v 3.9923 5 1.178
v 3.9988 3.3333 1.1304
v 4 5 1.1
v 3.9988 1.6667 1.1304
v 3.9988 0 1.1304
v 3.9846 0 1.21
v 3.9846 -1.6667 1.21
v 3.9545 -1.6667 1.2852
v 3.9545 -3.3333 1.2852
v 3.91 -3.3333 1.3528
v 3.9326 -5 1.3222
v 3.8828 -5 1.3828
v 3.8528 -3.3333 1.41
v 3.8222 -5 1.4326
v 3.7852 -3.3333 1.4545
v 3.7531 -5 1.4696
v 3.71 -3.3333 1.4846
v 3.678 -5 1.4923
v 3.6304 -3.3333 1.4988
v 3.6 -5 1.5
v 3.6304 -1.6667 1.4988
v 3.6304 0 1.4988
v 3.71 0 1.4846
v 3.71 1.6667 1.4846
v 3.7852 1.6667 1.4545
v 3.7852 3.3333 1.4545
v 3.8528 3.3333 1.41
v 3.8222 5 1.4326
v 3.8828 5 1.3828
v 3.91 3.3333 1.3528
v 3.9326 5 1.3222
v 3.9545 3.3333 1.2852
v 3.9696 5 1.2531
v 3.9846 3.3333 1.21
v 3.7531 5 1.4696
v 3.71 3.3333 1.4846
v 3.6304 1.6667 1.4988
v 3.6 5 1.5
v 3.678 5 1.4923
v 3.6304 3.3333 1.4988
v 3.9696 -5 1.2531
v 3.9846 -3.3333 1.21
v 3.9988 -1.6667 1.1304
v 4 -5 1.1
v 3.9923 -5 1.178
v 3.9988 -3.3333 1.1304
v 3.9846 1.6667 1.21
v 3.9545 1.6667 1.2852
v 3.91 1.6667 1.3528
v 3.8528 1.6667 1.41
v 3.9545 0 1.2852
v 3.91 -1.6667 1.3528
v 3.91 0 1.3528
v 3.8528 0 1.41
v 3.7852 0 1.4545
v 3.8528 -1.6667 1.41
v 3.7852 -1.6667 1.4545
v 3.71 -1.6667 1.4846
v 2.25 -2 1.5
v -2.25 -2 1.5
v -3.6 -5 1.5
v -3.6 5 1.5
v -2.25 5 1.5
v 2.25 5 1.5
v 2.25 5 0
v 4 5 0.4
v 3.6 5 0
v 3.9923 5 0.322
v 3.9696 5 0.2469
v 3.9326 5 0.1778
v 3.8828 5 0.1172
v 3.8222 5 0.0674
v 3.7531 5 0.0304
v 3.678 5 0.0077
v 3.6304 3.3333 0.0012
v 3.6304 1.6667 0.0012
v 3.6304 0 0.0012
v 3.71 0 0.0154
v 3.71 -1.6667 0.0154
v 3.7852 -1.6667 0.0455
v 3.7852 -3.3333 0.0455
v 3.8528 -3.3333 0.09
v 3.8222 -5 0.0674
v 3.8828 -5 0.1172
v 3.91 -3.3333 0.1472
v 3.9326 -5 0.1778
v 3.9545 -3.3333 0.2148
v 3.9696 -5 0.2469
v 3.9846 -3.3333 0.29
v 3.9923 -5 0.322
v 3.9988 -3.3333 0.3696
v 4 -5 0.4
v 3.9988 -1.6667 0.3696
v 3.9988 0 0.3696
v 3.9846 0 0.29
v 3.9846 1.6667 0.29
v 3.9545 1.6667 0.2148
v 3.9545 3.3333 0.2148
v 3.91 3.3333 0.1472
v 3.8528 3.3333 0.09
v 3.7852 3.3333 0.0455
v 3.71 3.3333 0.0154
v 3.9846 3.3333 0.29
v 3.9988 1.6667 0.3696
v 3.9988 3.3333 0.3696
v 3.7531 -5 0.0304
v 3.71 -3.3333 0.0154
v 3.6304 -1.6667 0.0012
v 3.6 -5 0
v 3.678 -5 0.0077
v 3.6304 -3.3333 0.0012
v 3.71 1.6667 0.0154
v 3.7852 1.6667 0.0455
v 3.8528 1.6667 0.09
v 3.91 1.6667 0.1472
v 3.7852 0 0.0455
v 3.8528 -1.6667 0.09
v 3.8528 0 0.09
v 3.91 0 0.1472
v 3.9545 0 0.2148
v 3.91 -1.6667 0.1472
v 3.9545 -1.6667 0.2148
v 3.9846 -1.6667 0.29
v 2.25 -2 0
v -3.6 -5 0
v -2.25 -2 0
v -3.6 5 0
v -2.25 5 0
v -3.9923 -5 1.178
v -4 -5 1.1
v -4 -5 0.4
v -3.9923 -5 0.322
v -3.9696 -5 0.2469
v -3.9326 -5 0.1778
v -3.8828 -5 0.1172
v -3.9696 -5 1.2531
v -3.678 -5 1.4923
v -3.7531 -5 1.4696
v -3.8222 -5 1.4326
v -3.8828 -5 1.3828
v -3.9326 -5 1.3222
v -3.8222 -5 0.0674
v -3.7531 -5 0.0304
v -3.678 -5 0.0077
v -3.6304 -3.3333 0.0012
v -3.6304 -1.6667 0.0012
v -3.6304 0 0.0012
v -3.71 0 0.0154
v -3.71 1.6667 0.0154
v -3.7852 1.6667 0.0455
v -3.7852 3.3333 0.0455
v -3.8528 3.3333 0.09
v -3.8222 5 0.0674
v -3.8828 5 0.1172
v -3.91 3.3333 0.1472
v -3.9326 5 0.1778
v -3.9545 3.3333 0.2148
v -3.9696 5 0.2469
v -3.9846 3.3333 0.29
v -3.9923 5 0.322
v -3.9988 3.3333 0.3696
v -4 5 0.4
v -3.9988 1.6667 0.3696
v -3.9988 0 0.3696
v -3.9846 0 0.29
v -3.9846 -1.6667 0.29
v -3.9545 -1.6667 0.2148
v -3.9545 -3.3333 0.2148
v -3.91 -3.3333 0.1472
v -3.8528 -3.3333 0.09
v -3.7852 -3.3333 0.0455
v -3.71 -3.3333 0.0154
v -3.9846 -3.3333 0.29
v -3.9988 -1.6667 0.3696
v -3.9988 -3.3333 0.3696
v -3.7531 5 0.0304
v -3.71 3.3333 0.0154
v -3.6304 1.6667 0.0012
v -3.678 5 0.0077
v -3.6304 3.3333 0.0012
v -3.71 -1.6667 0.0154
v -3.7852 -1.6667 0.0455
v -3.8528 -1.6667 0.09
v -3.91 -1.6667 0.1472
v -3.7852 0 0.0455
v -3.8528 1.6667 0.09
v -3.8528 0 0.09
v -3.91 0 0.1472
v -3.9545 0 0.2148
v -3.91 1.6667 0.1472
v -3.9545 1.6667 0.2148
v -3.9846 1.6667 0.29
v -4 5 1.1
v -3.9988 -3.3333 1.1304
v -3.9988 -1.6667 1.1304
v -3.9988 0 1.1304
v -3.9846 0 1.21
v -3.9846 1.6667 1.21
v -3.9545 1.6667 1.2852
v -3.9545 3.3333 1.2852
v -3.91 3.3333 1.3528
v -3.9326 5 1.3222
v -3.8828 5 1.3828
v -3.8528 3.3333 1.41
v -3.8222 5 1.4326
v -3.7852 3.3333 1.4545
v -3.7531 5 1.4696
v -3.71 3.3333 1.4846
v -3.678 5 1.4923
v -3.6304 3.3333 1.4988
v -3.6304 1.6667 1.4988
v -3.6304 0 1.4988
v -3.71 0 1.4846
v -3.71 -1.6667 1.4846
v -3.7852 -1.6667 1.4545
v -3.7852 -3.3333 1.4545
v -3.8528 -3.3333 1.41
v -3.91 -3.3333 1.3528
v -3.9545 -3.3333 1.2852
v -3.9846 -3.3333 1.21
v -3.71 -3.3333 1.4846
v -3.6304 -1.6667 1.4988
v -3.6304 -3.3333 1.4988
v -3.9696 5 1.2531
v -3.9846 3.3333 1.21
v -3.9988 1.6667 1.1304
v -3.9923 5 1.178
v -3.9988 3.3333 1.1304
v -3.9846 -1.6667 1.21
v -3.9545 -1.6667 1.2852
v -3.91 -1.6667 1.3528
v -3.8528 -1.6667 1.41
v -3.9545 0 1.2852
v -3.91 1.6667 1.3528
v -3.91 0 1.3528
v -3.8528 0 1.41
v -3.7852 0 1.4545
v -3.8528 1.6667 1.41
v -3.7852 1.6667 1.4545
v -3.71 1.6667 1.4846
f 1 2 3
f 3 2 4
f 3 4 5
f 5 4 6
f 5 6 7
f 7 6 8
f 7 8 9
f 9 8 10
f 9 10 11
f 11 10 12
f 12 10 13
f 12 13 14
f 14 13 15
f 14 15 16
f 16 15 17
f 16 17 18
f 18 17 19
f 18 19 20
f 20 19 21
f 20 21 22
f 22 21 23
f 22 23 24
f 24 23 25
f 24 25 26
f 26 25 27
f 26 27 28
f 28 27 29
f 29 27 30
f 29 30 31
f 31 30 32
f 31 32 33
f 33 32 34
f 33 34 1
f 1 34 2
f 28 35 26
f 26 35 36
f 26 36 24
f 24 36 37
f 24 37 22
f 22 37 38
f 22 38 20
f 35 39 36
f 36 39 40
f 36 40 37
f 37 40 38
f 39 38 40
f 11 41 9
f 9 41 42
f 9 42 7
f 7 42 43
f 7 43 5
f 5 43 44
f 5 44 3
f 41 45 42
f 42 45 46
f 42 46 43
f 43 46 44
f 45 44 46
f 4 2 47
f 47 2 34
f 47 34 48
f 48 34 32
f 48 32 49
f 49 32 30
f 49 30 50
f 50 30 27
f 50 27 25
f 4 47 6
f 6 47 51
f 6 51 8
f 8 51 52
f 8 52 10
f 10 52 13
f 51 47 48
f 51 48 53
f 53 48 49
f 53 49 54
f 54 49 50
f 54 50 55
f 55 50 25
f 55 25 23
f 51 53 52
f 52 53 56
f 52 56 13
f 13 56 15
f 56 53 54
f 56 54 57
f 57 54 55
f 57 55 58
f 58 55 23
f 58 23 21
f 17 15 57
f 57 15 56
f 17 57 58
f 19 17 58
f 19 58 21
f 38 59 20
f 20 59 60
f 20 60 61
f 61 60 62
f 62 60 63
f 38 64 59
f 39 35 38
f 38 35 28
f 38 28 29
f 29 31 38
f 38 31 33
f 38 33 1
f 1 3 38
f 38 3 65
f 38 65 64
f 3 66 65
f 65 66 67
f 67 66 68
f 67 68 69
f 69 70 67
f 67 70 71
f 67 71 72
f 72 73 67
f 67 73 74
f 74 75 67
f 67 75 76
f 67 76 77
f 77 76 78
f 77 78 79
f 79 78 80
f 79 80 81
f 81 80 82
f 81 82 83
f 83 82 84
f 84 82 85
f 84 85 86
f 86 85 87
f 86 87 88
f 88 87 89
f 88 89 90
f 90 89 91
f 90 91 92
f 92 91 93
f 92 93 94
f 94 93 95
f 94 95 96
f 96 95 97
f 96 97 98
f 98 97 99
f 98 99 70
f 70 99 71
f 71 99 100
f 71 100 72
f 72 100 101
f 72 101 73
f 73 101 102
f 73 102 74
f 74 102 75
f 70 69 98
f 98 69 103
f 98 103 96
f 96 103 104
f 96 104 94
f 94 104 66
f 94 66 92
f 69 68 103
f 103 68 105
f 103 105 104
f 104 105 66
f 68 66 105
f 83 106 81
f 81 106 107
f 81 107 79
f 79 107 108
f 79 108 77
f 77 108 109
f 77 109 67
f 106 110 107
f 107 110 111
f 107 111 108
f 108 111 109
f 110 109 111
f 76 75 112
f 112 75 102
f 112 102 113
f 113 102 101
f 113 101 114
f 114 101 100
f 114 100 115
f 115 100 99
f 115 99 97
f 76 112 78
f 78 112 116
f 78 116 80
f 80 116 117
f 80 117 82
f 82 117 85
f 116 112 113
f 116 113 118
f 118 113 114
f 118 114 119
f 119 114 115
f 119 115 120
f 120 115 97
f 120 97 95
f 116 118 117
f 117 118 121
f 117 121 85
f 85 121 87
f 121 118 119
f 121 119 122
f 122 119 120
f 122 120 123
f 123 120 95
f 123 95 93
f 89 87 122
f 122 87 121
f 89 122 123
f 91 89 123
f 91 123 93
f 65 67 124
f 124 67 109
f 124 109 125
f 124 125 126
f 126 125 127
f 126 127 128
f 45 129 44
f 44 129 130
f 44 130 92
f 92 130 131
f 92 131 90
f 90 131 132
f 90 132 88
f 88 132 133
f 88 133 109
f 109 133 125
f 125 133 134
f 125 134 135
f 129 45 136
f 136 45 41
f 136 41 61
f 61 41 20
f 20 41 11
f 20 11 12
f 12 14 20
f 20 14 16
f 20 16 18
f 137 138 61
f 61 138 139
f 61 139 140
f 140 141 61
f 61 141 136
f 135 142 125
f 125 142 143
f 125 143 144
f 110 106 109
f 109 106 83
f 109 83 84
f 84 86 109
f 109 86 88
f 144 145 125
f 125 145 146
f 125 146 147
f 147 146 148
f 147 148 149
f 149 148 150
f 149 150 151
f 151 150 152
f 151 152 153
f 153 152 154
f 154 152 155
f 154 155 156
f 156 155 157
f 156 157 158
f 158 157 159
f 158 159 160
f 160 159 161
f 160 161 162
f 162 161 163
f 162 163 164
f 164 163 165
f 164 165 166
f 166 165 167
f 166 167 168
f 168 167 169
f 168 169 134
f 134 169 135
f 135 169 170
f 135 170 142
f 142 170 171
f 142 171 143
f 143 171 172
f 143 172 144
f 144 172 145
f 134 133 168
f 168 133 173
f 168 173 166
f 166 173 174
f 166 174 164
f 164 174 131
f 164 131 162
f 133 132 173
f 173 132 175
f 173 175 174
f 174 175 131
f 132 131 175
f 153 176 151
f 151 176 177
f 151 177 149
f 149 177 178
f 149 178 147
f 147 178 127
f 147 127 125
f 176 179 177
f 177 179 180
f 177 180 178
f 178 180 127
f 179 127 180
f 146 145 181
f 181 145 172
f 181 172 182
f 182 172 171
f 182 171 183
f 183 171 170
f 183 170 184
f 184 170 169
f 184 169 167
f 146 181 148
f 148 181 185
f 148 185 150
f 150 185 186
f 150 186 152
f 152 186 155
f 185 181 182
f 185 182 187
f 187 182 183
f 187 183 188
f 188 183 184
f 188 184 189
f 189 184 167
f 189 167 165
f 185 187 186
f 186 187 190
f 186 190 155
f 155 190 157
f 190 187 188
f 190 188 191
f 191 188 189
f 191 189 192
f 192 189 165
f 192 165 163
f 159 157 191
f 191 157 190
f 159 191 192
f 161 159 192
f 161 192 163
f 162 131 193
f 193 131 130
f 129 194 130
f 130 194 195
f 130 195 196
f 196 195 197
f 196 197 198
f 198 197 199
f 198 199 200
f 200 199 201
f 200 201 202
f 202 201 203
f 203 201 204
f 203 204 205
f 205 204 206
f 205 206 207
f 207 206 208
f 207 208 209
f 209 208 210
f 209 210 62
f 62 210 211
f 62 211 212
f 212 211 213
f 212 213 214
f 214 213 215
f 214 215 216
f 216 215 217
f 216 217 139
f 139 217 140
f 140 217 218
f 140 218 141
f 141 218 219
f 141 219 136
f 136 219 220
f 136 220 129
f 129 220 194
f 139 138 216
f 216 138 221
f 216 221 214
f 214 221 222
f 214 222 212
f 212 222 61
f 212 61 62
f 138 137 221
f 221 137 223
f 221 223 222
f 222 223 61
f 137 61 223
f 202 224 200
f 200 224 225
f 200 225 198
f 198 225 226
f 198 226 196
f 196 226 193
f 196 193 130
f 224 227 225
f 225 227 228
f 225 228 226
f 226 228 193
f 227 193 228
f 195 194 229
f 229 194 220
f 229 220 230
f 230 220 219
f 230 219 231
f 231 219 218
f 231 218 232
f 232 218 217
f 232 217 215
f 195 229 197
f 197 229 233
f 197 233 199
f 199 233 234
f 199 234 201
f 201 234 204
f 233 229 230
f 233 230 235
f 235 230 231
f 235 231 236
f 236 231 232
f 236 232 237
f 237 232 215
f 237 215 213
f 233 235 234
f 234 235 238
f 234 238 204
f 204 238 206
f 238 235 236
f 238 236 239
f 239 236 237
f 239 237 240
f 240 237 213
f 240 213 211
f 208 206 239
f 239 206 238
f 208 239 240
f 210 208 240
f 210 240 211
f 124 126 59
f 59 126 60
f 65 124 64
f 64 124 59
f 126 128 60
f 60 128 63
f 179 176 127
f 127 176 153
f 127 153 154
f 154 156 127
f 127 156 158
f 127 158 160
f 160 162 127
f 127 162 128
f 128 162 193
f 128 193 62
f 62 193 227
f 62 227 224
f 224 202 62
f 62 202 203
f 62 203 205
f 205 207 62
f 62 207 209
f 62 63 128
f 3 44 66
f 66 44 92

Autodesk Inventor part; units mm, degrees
ref_plane "YZ Plane" through (0, 0, 0) normal (1, 0, 0) x (0, 1, 0)
ref_plane "XZ Plane" through (0, 0, 0) normal (0, 1, 0) x (-1, 0, 0)
ref_plane "XY Plane" through (0, 0, 0) normal (0, 0, 1) x (1, 0, 0)
sketch "Sketch1" plane through (0, 0, 0) normal (0, 0, 1) x (1, 0, 0)
  line L0 (-4, 5) -> (4, 5)
  line L1 (4, 5) -> (4, -5)
  line L2 (4, -5) -> (-4, -5)
  line L3 (-4, -5) -> (-4, 5)
  line L4 (-4, 5) -> (4, -5) construction
  line L5 (4, 5) -> (-4, -5) construction
  point P0 (0, 0)
  dimension "d0" = 8
  dimension "d1" = 10
extrude "Extrusion1" add sketch "Sketch1" along normal blind 1.5
sketch "Sketch2" plane through (0, 0, 1.5) normal (0, 0, 1) x (1, 0, 0)
  line L0 (-4, -5) -> (4, -5) projected
  line L1 (4, -5) -> (4, 5) projected
  line L2 (4, 5) -> (-4, 5) projected
  line L3 (-4, 5) -> (-4, -5) projected
  line L4 (-5.6, 0) -> (5.6, 0) projected
  line L5 (0, -7) -> (0, 7) projected
  line L6 (4, 5) -> (-4, 5) projected
  line L7 (-2.25, 5) -> (2.25, 5)
  line L8 (2.25, 5) -> (2.25, -2)
  line L9 (2.25, -2) -> (-2.25, -2)
  line L10 (-2.25, -2) -> (-2.25, 5)
  point P0 (0, 0)
  dimension "d4" = 4.5
  dimension "d5" = 7
extrude "Extrusion2" cut sketch "Sketch2" against normal through all contours L9 L10 L4 L5 | L5 L4 L8 L9 | L10 L2 L5 L4 | L5 L2 L8 L4
fillet "Fillet1" radius 0.4 4 edges at (-4, 0, 1.5) (-4, 0, 0) (4, 0, 0) (4, 0, 1.5)
equation "\"BendRadius\" = Thickness"
equation "\"BendReliefWidth\" = Thickness"
equation "\"BendReliefDepth\" = 0.5 * Thickness"
equation "\"CornerReliefSize\" = 4 * Thickness"
equation "\"MinimumRemnant\" = 2 * Thickness"
equation "\"TransitionRadius\" = BendRadius"
equation "\"JacobiRadiusSize\" = BendRadius"
equation "\"GapSize\" = Thickness"
equation "\"Thickness\" = 3.048"
properties part number "_3DPrint"
